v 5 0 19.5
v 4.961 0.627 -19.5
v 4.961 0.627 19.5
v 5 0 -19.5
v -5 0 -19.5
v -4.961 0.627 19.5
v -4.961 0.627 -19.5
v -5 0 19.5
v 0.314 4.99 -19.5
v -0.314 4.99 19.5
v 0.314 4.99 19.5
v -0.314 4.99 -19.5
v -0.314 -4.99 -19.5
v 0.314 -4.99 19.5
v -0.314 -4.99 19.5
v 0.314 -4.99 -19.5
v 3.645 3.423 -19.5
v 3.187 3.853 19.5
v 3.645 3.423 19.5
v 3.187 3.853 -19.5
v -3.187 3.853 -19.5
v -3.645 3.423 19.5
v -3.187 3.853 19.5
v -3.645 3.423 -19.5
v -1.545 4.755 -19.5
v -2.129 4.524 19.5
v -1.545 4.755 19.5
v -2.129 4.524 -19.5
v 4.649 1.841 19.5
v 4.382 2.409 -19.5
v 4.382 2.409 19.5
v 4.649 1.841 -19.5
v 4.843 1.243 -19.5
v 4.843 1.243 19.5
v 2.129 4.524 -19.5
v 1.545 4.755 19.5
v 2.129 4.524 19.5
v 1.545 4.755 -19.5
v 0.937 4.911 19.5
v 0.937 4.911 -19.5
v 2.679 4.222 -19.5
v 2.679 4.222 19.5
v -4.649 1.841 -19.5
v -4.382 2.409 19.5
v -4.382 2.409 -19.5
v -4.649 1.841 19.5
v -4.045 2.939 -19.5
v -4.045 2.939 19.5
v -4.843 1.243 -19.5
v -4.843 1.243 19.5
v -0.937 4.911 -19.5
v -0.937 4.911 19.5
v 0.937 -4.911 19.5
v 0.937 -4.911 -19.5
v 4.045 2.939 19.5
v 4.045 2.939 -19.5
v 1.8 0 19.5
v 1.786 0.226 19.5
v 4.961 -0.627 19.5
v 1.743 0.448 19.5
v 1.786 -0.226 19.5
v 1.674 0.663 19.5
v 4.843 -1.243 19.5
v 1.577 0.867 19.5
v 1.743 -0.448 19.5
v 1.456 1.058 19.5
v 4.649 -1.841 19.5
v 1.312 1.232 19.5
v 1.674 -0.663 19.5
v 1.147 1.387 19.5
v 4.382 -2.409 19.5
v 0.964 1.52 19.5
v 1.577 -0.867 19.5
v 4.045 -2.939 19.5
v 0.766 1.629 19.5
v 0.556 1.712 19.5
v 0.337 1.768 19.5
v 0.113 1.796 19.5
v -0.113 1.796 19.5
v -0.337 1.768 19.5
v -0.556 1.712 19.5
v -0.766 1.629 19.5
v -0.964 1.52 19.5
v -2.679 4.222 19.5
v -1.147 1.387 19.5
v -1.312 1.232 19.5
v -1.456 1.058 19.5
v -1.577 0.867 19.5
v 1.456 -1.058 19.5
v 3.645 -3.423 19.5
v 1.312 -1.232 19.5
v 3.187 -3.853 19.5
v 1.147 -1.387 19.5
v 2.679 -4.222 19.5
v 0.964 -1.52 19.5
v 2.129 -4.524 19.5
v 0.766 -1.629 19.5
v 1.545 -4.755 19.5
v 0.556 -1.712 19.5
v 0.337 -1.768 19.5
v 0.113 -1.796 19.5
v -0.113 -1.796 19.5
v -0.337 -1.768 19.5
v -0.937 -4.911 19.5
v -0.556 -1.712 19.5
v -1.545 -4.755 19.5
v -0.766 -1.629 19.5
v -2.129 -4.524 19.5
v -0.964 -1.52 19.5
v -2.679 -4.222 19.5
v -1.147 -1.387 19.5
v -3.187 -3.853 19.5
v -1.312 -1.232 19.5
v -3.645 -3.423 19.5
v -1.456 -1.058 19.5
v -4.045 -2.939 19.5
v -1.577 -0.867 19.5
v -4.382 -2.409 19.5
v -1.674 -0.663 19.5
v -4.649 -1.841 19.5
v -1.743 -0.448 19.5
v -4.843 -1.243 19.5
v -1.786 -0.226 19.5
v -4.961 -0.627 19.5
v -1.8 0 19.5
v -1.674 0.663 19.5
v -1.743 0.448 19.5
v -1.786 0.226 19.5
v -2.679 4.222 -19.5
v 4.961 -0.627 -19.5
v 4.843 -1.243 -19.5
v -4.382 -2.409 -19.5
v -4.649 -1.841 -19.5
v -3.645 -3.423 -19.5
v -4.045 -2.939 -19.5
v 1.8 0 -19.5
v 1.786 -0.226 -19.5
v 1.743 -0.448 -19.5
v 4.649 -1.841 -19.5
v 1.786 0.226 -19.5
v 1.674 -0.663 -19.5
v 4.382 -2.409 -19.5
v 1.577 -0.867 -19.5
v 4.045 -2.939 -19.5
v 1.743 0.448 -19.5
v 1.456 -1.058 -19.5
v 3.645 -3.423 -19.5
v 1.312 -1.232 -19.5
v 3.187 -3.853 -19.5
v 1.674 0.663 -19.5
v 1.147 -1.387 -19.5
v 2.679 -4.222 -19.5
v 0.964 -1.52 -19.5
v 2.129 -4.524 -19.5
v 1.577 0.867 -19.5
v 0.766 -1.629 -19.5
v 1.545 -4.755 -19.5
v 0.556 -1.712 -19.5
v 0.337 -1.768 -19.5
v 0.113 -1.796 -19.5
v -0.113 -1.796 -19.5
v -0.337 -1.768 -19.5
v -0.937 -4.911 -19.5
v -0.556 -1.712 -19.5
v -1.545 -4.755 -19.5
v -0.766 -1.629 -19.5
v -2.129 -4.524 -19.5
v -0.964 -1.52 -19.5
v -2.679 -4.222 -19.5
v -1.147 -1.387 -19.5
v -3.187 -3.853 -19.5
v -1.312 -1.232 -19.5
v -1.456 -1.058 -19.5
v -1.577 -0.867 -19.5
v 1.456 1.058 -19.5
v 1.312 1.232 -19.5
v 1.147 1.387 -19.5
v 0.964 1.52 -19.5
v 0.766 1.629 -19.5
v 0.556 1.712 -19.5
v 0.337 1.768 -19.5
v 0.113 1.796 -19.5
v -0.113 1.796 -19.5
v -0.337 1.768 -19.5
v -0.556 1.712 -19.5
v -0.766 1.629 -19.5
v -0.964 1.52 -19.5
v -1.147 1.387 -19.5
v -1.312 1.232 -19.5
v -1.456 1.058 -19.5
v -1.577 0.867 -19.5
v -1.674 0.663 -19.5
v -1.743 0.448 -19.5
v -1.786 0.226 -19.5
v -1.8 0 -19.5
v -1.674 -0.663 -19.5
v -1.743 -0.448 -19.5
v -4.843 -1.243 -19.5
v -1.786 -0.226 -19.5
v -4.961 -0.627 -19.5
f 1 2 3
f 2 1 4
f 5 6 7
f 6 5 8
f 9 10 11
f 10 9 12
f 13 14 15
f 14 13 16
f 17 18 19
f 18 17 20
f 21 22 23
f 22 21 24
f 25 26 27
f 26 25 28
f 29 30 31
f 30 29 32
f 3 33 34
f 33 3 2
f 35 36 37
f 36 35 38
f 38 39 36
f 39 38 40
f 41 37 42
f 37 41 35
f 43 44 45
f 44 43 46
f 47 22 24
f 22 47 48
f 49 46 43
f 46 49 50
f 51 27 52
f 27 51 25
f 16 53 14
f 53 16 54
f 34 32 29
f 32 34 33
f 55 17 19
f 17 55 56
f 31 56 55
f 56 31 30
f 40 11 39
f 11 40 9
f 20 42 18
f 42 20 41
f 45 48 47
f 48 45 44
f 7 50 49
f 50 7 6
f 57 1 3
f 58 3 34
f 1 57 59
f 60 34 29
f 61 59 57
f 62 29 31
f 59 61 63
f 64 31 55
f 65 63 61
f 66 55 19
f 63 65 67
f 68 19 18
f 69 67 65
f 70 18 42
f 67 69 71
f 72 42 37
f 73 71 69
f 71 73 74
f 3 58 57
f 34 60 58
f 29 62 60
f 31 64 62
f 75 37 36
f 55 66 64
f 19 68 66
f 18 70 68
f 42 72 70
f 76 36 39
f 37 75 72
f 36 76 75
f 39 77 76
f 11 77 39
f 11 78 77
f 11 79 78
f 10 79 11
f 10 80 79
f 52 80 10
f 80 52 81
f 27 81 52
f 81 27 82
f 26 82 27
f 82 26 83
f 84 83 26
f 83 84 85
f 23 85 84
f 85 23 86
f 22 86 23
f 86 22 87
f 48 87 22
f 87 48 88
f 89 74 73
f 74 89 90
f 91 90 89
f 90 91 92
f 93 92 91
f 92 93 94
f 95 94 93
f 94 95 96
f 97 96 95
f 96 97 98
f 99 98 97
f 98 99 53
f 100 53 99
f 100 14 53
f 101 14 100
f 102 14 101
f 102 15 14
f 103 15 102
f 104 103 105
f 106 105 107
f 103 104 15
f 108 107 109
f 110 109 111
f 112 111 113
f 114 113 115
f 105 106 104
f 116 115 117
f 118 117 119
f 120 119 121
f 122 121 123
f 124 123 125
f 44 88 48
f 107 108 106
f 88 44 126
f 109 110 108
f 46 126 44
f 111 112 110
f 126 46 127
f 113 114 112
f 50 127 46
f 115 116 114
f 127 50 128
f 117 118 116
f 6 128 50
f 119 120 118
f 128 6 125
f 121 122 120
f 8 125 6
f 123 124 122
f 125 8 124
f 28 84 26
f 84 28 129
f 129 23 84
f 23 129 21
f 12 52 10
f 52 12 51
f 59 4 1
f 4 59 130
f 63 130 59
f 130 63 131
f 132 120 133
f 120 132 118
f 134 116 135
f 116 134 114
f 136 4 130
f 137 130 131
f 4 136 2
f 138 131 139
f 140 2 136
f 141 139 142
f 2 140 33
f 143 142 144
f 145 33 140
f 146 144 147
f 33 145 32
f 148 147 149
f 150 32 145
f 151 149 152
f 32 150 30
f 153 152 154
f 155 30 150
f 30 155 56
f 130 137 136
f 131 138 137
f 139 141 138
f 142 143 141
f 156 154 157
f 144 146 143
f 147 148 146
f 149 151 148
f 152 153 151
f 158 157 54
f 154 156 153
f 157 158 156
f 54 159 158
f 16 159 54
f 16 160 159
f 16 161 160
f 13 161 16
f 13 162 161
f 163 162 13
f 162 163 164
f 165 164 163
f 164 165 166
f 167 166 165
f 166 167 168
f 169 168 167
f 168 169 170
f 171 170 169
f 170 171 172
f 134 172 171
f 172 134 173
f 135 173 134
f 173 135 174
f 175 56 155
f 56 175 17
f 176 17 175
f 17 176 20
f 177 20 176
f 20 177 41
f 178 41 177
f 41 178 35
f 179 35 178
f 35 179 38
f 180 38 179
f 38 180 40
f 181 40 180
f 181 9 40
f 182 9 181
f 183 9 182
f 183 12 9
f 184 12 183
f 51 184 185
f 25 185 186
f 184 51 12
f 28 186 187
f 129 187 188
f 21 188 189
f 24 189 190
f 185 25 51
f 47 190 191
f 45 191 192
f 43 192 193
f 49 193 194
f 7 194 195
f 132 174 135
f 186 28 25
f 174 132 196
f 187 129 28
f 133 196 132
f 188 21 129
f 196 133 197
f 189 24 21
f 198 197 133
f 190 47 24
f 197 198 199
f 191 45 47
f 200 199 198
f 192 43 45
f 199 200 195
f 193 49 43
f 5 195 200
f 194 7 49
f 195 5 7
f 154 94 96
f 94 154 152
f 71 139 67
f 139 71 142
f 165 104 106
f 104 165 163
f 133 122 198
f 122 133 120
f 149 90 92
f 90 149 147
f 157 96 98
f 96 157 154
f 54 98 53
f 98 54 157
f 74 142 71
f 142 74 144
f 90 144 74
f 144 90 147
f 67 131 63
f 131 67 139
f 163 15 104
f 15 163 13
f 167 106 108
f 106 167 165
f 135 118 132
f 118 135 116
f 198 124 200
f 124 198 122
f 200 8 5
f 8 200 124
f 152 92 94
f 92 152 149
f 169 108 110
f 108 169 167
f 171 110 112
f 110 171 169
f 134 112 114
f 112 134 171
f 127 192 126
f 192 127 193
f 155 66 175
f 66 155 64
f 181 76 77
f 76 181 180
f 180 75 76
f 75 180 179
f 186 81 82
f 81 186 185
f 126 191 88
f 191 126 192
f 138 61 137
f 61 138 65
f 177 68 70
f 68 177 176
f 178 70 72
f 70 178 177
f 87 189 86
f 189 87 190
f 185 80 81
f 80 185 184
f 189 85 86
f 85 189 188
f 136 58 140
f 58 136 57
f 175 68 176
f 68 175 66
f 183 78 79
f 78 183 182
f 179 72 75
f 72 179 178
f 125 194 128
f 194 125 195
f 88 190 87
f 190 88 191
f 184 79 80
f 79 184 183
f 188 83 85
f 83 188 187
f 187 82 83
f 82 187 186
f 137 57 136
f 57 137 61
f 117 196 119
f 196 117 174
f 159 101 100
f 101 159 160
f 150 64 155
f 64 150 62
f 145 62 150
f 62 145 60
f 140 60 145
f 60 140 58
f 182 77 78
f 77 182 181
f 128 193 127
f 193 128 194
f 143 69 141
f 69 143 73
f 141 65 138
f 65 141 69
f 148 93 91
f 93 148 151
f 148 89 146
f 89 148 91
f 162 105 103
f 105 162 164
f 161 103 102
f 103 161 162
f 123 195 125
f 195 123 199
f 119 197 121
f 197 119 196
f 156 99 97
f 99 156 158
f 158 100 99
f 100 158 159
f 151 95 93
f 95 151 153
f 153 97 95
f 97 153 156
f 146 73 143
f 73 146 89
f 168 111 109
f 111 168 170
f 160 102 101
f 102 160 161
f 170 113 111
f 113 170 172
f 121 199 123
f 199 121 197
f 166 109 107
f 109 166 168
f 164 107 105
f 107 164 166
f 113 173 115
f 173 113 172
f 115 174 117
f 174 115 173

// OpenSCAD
$fn = 50;


difference() {
	union() {
		translate(v = [0, 0, -19.5000000000]) {
			cylinder(h = 39, r = 5.0000000000);
		}
	}
	union() {
		translate(v = [0, 0, -100.0000000000]) {
			cylinder(h = 200, r = 1.8000000000);
		}
	}
}
